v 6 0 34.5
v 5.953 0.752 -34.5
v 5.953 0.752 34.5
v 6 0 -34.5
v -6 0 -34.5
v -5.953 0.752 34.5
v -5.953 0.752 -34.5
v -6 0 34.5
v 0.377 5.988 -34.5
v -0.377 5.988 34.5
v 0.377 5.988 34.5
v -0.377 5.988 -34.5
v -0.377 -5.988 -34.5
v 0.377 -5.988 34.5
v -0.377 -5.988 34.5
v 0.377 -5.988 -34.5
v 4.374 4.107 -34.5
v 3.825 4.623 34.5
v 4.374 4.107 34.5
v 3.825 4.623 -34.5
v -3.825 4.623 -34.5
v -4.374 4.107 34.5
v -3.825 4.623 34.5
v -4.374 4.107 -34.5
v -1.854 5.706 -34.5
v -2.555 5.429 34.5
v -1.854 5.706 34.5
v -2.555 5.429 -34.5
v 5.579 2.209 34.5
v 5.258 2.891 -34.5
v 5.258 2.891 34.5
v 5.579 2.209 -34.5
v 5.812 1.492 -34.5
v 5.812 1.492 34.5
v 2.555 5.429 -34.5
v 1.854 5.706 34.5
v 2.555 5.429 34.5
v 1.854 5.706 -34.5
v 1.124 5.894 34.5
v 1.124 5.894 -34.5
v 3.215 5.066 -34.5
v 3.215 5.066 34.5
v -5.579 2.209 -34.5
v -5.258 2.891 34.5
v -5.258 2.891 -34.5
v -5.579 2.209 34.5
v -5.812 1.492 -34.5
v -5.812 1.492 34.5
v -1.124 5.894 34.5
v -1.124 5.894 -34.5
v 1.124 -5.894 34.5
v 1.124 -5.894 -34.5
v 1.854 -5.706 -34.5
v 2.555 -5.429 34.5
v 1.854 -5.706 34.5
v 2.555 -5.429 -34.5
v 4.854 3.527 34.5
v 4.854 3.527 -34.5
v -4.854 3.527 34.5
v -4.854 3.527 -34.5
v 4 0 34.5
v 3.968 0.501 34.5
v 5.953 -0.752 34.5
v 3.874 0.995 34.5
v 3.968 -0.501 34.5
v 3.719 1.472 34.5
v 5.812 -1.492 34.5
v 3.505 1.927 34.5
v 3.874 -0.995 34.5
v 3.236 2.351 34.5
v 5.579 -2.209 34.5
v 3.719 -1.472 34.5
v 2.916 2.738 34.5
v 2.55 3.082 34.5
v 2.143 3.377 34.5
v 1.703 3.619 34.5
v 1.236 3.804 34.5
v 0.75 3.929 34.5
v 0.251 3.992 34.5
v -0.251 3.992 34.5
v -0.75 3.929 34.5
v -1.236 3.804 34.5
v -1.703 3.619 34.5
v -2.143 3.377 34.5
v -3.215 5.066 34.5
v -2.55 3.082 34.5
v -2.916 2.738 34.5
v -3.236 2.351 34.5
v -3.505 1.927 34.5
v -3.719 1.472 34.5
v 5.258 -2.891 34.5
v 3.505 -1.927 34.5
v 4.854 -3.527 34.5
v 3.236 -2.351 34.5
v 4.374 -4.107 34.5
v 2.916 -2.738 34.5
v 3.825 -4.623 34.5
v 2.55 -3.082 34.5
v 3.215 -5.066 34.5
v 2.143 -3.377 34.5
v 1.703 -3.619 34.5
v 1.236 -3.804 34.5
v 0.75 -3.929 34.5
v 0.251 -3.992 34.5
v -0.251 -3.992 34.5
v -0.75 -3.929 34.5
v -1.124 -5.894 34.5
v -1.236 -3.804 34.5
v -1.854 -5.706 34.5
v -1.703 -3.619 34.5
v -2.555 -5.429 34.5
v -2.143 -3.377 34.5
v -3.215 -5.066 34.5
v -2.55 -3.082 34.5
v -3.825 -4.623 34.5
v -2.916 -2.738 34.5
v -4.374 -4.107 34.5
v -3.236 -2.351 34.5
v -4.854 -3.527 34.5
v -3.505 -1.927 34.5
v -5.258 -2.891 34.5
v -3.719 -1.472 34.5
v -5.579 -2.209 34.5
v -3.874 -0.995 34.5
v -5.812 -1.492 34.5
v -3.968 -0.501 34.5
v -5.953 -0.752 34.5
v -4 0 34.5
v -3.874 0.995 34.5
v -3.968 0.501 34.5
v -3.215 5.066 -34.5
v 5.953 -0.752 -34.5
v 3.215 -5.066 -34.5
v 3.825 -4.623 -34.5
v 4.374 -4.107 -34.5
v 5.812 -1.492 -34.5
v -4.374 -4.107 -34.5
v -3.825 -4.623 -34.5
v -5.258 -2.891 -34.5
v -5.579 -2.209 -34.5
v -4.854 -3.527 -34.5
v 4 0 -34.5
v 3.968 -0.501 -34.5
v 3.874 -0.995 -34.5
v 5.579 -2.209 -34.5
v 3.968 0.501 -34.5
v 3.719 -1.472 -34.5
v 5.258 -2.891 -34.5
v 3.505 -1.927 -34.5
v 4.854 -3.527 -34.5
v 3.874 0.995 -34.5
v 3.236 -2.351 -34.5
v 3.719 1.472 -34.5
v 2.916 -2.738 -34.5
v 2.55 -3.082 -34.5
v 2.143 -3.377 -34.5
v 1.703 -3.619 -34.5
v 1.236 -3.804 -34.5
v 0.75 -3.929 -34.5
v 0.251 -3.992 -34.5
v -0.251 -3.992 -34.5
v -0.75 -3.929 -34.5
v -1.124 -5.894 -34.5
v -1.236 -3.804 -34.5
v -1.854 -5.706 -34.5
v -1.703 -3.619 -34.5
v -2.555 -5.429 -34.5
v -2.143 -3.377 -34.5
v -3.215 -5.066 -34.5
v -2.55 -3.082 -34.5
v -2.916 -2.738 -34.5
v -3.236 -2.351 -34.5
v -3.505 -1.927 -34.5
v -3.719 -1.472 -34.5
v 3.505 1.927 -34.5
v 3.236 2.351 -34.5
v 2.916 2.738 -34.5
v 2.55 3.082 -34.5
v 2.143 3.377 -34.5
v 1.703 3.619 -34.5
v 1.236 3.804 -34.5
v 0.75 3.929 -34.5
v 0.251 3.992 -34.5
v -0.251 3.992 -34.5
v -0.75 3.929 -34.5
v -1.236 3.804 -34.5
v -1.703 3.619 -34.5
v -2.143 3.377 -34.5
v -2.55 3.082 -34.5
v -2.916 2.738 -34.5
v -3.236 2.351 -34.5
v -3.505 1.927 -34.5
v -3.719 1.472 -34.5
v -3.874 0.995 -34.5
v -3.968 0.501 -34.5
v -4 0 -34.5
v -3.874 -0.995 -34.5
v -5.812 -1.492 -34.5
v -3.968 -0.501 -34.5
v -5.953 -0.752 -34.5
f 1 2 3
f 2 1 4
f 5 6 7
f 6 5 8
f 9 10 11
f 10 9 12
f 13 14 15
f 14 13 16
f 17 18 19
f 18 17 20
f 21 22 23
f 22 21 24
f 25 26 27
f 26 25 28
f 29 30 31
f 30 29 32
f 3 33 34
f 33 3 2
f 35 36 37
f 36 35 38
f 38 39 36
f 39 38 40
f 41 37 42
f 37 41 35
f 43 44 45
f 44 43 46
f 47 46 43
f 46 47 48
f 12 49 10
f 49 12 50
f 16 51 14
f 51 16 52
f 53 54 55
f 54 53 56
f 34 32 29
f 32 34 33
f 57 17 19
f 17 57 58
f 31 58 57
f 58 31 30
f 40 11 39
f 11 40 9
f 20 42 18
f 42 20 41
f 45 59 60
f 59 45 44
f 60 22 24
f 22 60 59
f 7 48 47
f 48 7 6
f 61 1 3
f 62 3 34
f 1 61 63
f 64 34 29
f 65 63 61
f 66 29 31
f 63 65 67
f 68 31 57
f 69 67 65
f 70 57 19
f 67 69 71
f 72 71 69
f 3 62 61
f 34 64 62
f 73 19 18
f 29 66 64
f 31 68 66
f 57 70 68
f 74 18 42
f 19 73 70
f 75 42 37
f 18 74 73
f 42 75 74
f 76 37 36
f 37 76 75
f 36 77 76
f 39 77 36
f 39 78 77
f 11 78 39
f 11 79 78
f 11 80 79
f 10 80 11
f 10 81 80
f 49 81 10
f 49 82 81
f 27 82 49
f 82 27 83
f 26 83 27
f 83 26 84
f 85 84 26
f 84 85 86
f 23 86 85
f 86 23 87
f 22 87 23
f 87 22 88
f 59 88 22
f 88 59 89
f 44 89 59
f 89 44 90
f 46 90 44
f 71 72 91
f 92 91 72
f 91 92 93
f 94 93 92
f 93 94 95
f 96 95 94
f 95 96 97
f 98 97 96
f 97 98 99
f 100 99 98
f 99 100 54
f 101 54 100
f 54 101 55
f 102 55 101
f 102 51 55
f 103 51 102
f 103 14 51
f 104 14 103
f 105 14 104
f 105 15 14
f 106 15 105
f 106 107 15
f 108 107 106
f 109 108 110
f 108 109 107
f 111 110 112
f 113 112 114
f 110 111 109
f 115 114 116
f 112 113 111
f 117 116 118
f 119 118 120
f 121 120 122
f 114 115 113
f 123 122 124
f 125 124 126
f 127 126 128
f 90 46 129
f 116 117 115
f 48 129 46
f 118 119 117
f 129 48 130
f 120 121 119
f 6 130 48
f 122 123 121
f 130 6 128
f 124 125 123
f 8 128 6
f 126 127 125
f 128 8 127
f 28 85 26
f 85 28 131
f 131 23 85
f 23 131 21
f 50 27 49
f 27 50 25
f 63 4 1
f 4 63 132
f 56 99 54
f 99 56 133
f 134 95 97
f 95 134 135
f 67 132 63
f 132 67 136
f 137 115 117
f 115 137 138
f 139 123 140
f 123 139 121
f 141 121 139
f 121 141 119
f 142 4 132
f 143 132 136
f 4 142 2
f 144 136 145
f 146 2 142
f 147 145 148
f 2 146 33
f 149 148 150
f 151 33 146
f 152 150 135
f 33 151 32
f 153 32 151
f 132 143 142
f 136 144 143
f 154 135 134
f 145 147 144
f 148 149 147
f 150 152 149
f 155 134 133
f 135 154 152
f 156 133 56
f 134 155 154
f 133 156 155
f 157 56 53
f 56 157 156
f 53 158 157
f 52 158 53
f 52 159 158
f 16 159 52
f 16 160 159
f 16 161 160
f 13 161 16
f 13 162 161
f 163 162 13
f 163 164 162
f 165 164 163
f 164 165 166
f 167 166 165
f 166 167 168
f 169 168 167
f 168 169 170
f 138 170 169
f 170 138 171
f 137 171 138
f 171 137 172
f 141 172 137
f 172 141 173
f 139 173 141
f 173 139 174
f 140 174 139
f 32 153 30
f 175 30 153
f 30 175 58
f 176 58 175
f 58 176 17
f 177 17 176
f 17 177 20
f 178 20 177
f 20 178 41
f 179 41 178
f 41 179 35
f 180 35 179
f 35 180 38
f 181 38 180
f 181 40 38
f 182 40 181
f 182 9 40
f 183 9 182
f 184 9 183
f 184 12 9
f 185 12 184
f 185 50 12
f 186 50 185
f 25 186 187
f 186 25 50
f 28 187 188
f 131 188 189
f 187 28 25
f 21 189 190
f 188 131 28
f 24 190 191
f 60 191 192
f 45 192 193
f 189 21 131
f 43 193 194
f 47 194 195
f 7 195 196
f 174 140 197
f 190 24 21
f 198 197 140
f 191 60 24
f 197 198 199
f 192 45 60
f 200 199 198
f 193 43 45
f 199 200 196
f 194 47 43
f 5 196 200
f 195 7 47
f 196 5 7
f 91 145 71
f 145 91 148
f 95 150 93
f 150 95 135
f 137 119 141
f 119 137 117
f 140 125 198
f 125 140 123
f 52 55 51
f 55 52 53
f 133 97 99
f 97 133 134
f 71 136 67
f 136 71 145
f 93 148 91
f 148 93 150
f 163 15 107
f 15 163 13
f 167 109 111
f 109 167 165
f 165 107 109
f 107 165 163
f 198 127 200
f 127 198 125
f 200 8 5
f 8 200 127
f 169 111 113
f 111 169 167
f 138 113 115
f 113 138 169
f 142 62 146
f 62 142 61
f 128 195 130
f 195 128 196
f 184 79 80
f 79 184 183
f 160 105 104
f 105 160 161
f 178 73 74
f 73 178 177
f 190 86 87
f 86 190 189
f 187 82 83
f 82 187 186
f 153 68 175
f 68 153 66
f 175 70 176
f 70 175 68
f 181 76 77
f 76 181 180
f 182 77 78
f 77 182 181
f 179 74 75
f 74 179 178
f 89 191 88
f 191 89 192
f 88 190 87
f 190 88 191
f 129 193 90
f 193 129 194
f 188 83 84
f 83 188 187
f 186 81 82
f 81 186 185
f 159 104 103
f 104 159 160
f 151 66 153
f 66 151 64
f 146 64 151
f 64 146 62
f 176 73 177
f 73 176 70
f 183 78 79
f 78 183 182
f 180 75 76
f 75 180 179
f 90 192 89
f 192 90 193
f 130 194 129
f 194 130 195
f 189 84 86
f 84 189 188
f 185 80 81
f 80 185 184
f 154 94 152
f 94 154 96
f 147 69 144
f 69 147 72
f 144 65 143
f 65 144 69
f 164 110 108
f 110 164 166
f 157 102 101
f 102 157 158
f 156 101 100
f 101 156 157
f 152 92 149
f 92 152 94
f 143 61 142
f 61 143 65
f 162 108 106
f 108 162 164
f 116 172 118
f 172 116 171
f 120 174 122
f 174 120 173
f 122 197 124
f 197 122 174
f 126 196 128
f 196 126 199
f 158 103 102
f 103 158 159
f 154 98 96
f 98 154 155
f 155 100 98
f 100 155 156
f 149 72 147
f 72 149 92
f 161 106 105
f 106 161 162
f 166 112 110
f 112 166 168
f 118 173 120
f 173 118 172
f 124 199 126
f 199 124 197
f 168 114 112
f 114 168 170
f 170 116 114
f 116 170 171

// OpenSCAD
$fn = 50;


difference() {
	union() {
		translate(v = [0, 0, -34.5000000000]) {
			cylinder(h = 69, r = 6.0000000000);
		}
	}
	union() {
		translate(v = [0, 0, -100.0000000000]) {
			cylinder(h = 200, r = 4);
		}
	}
}
